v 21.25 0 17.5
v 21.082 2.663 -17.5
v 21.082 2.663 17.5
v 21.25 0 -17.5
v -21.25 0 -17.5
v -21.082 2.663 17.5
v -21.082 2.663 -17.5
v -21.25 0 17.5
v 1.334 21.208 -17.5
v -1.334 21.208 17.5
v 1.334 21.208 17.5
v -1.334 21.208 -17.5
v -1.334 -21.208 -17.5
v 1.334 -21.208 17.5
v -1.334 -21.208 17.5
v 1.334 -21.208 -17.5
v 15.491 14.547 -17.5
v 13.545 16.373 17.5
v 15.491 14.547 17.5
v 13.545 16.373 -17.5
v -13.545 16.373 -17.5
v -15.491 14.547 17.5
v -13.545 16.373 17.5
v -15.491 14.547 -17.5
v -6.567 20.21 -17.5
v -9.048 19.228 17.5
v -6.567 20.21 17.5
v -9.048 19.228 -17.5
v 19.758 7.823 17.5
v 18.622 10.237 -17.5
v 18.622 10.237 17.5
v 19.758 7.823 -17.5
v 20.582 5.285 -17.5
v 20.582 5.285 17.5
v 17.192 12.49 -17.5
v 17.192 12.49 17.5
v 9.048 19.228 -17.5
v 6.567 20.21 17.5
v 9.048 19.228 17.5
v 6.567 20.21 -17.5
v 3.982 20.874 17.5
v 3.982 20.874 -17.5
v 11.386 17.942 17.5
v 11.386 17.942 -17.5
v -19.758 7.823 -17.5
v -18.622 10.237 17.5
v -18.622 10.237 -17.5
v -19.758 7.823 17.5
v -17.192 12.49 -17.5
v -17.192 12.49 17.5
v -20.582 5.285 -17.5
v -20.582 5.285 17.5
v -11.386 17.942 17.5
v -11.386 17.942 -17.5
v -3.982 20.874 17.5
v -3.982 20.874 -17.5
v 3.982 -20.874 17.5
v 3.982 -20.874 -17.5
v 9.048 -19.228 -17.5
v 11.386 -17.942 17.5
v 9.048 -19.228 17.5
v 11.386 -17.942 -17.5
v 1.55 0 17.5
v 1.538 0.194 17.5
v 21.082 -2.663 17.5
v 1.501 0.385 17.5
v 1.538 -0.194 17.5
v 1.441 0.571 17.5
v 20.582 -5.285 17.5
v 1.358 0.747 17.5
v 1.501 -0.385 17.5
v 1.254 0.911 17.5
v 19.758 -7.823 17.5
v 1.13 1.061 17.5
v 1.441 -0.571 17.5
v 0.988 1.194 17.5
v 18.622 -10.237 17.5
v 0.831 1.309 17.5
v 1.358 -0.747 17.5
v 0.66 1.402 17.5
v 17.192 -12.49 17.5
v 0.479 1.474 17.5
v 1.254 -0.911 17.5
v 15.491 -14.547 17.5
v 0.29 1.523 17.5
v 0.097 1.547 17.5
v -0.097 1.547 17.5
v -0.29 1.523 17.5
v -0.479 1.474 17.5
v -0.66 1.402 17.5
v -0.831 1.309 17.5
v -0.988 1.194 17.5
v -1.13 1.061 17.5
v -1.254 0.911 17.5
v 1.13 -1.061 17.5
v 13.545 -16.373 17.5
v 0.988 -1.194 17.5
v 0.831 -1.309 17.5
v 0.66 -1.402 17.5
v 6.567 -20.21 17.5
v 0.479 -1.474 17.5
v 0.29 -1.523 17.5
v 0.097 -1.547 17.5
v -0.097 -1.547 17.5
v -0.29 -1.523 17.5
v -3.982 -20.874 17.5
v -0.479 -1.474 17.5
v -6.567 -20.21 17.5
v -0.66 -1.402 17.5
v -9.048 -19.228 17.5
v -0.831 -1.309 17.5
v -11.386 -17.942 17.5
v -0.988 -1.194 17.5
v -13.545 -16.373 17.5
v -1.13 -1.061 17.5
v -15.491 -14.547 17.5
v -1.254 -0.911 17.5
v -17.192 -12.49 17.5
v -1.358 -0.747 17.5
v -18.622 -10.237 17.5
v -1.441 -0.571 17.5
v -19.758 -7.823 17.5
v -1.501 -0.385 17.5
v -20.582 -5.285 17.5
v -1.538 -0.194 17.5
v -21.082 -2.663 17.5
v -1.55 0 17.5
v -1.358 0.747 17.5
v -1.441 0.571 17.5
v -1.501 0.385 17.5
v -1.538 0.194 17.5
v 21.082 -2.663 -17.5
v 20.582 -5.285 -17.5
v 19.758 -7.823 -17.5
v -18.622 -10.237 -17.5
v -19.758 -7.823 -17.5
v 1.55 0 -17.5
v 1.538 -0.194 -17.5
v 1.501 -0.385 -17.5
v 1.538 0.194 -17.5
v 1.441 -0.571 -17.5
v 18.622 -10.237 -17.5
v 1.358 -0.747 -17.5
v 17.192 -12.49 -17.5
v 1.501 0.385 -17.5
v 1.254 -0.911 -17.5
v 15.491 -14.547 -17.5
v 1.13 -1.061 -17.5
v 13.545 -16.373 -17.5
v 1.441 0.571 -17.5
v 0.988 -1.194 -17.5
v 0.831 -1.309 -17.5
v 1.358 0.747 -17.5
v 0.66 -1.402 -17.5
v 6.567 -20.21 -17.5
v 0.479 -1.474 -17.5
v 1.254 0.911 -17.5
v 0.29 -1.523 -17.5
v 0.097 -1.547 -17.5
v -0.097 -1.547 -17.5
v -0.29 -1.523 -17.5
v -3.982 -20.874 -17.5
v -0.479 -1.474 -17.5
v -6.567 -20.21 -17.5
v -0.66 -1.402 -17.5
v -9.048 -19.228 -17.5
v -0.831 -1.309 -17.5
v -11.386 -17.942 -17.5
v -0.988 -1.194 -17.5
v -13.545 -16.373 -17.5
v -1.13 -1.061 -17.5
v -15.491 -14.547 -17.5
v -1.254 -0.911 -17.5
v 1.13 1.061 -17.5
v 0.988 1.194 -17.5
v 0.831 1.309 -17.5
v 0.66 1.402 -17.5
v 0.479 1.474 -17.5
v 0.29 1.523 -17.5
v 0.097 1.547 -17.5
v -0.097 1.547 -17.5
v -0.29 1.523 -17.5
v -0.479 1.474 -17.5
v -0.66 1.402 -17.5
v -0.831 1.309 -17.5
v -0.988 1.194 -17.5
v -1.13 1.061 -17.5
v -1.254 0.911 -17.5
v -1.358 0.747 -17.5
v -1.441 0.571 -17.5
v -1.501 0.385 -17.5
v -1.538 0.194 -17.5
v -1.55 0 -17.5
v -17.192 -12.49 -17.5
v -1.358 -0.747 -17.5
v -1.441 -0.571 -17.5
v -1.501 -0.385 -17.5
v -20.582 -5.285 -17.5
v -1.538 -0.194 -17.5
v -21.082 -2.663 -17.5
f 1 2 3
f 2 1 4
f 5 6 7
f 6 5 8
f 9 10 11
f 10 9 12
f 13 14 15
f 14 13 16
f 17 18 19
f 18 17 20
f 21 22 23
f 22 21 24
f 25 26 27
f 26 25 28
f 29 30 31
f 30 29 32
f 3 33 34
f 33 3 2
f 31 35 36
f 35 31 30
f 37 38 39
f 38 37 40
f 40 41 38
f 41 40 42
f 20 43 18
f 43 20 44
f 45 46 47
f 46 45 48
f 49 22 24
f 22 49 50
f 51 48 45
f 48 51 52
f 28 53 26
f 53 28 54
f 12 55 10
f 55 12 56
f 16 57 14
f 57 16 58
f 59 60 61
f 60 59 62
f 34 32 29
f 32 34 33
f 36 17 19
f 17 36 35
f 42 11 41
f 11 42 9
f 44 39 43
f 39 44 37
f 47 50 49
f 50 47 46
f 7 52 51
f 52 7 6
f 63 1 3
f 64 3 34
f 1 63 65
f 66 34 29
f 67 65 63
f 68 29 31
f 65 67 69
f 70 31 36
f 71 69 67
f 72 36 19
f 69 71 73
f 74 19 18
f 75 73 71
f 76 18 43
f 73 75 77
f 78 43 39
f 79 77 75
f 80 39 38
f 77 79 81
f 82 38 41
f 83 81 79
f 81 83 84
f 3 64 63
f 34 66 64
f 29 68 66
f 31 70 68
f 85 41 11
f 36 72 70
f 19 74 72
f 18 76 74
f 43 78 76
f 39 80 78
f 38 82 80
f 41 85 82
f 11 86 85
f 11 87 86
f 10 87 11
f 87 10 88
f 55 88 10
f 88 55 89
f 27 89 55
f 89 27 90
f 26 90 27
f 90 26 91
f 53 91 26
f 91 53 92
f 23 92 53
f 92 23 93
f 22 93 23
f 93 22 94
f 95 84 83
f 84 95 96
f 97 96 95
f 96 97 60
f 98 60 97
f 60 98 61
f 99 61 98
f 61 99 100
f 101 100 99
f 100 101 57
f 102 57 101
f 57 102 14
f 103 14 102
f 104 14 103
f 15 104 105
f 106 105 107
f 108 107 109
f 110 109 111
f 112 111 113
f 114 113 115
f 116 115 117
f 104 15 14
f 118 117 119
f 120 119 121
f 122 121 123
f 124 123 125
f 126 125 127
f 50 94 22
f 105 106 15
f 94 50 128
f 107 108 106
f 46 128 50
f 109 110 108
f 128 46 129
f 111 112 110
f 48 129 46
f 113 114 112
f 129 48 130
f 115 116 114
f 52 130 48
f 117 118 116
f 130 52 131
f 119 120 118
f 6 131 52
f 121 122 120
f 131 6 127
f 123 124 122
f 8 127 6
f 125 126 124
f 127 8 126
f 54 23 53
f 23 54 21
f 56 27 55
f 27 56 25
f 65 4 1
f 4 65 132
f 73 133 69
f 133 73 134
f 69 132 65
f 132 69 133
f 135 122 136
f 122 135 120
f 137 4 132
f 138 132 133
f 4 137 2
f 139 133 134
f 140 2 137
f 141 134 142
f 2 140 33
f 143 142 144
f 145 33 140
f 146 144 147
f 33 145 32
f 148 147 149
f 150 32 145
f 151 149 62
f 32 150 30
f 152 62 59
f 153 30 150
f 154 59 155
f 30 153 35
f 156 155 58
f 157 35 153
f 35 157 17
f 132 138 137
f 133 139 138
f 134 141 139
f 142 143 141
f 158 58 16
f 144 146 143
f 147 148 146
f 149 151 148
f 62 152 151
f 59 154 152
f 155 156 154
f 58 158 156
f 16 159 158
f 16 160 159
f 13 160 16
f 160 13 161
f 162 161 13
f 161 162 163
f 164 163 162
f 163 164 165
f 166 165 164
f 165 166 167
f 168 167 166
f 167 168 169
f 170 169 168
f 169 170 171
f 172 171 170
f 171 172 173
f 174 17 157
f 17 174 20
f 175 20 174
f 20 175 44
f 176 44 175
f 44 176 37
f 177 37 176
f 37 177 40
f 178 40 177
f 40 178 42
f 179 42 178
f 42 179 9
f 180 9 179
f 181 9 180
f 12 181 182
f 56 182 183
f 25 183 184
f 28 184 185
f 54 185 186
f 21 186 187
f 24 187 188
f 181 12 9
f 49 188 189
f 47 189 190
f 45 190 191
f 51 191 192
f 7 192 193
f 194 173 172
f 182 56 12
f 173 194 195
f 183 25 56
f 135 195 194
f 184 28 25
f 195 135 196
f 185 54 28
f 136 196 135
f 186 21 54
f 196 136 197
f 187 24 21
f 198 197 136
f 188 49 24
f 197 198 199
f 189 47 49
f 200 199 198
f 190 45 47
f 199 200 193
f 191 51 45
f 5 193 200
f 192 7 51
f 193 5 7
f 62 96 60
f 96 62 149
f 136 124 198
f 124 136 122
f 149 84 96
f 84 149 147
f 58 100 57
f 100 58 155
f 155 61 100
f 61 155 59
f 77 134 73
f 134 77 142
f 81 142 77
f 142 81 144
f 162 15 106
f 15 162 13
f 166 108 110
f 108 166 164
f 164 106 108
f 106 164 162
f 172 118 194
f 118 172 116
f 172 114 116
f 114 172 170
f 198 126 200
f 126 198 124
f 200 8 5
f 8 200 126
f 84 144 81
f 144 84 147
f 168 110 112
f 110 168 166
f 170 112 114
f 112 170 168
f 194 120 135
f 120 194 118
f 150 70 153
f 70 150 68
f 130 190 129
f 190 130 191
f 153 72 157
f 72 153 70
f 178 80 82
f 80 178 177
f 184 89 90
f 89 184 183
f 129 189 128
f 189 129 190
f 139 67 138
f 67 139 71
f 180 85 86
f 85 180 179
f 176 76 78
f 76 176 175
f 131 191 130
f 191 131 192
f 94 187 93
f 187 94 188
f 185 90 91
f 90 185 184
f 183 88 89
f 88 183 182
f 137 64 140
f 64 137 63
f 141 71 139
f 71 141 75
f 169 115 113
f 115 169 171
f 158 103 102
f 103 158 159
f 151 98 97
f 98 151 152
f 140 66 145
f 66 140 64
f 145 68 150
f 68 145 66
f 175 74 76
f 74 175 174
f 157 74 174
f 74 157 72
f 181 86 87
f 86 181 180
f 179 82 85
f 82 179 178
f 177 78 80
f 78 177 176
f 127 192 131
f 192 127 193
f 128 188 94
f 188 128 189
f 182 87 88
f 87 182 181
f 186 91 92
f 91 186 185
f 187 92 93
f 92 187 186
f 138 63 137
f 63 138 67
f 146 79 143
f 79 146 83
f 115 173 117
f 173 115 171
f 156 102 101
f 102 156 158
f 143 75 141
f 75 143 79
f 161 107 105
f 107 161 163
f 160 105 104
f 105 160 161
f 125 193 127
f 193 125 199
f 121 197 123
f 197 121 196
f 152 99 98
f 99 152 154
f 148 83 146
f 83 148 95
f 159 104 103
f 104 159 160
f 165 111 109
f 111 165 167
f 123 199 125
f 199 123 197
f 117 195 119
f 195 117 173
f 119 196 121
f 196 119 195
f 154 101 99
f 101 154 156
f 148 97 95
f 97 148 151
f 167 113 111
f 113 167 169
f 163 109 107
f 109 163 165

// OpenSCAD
$fn = 50;


difference() {
	union() {
		translate(v = [0, 0, -17.5000000000]) {
			cylinder(h = 35, r = 21.2500000000);
		}
	}
	union() {
		translate(v = [0, 0, -100.0000000000]) {
			cylinder(h = 200, r = 1.5500000000);
		}
	}
}
